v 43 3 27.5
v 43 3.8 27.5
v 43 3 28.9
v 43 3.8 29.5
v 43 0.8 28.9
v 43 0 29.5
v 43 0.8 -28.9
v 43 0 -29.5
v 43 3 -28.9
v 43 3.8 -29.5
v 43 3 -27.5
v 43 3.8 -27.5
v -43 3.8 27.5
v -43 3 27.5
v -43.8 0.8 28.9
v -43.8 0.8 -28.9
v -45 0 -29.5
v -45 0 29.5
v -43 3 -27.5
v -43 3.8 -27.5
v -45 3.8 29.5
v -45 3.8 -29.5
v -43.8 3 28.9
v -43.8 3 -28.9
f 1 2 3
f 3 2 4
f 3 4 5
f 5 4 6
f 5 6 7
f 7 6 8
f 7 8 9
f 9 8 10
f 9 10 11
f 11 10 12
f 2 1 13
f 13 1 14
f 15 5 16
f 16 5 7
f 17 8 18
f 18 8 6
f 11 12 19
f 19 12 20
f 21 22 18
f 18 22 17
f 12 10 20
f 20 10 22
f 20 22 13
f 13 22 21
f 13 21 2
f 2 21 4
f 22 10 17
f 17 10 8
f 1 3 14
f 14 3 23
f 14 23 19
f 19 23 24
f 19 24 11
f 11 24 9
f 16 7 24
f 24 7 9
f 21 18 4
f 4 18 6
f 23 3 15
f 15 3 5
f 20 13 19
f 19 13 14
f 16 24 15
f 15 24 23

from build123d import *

# Parameters (mm, degrees)
SKETCH_1_W          = 86
SKETCH_1_H          = 55
EXTRUDE_311_DEPTH   = 0.8
SKETCH_2_W          = 88
SKETCH_2_H          = 3.8
EXTRUDE_1_DEPTH     = 2
SKETCH_3_W          = 87.2
SKETCH_3_H          = 2.2
CUT_EXTRUDE_1_DEPTH = 1.4
SKETCH_4_W          = 59
SKETCH_4_H          = 3.8
EXTRUDE_2_DEPTH     = 2
SKETCH_5_W          = 57.8
SKETCH_5_H          = 2.2
CUT_EXTRUDE_2_DEPTH = 0.8


with BuildPart() as part:
    # Эскиз1 → Extrude 311 (new body)
    with BuildSketch(Plane(origin=(0, 0, 0), x_dir=(1, 0, 0), z_dir=(0, 1, 0))):
        Rectangle(SKETCH_1_W, SKETCH_1_H)
    extrude(amount=EXTRUDE_311_DEPTH)

    # Эскиз2 → Бобышка-Вытянуть1 (add)
    with BuildSketch(Plane(origin=(0, 0, -27.5), x_dir=(-1, 0, 0), z_dir=(0, 0, -1))):
        with Locations((1, 1.9)):
            Rectangle(SKETCH_2_W, SKETCH_2_H)
    extrude_1 = extrude(amount=EXTRUDE_1_DEPTH)

    # Эскиз3 → Вырез-Вытянуть1 (cut)
    with BuildSketch(Plane.XY.offset(-27.5)):
        with Locations((-0.6, 1.9)):
            Rectangle(SKETCH_3_W, SKETCH_3_H)
    cut_extrude_1 = extrude(amount=-CUT_EXTRUDE_1_DEPTH, mode=Mode.SUBTRACT)

    # Зеркальное отражение1: Бобышка-Вытянуть1, Вырез-Вытянуть1 across plane
    add(extrude_1.mirror(Plane.XY))
    add(cut_extrude_1.mirror(Plane.XY), mode=Mode.SUBTRACT)

    # Эскиз4 → Бобышка-Вытянуть2 (add)
    with BuildSketch(Plane.ZY.offset(43)):
        with Locations((0, 1.9)):
            Rectangle(SKETCH_4_W, SKETCH_4_H)
    extrude(amount=EXTRUDE_2_DEPTH)

    # Эскиз5 → Вырез-Вытянуть2 (cut)
    with BuildSketch(Plane(origin=(-43, 0, 0), x_dir=(0, 0, -1), z_dir=(1, 0, 0))):
        with Locations((0, 1.9)):
            Rectangle(SKETCH_5_W, SKETCH_5_H)
    extrude(amount=-CUT_EXTRUDE_2_DEPTH, mode=Mode.SUBTRACT)


solid = part.part
